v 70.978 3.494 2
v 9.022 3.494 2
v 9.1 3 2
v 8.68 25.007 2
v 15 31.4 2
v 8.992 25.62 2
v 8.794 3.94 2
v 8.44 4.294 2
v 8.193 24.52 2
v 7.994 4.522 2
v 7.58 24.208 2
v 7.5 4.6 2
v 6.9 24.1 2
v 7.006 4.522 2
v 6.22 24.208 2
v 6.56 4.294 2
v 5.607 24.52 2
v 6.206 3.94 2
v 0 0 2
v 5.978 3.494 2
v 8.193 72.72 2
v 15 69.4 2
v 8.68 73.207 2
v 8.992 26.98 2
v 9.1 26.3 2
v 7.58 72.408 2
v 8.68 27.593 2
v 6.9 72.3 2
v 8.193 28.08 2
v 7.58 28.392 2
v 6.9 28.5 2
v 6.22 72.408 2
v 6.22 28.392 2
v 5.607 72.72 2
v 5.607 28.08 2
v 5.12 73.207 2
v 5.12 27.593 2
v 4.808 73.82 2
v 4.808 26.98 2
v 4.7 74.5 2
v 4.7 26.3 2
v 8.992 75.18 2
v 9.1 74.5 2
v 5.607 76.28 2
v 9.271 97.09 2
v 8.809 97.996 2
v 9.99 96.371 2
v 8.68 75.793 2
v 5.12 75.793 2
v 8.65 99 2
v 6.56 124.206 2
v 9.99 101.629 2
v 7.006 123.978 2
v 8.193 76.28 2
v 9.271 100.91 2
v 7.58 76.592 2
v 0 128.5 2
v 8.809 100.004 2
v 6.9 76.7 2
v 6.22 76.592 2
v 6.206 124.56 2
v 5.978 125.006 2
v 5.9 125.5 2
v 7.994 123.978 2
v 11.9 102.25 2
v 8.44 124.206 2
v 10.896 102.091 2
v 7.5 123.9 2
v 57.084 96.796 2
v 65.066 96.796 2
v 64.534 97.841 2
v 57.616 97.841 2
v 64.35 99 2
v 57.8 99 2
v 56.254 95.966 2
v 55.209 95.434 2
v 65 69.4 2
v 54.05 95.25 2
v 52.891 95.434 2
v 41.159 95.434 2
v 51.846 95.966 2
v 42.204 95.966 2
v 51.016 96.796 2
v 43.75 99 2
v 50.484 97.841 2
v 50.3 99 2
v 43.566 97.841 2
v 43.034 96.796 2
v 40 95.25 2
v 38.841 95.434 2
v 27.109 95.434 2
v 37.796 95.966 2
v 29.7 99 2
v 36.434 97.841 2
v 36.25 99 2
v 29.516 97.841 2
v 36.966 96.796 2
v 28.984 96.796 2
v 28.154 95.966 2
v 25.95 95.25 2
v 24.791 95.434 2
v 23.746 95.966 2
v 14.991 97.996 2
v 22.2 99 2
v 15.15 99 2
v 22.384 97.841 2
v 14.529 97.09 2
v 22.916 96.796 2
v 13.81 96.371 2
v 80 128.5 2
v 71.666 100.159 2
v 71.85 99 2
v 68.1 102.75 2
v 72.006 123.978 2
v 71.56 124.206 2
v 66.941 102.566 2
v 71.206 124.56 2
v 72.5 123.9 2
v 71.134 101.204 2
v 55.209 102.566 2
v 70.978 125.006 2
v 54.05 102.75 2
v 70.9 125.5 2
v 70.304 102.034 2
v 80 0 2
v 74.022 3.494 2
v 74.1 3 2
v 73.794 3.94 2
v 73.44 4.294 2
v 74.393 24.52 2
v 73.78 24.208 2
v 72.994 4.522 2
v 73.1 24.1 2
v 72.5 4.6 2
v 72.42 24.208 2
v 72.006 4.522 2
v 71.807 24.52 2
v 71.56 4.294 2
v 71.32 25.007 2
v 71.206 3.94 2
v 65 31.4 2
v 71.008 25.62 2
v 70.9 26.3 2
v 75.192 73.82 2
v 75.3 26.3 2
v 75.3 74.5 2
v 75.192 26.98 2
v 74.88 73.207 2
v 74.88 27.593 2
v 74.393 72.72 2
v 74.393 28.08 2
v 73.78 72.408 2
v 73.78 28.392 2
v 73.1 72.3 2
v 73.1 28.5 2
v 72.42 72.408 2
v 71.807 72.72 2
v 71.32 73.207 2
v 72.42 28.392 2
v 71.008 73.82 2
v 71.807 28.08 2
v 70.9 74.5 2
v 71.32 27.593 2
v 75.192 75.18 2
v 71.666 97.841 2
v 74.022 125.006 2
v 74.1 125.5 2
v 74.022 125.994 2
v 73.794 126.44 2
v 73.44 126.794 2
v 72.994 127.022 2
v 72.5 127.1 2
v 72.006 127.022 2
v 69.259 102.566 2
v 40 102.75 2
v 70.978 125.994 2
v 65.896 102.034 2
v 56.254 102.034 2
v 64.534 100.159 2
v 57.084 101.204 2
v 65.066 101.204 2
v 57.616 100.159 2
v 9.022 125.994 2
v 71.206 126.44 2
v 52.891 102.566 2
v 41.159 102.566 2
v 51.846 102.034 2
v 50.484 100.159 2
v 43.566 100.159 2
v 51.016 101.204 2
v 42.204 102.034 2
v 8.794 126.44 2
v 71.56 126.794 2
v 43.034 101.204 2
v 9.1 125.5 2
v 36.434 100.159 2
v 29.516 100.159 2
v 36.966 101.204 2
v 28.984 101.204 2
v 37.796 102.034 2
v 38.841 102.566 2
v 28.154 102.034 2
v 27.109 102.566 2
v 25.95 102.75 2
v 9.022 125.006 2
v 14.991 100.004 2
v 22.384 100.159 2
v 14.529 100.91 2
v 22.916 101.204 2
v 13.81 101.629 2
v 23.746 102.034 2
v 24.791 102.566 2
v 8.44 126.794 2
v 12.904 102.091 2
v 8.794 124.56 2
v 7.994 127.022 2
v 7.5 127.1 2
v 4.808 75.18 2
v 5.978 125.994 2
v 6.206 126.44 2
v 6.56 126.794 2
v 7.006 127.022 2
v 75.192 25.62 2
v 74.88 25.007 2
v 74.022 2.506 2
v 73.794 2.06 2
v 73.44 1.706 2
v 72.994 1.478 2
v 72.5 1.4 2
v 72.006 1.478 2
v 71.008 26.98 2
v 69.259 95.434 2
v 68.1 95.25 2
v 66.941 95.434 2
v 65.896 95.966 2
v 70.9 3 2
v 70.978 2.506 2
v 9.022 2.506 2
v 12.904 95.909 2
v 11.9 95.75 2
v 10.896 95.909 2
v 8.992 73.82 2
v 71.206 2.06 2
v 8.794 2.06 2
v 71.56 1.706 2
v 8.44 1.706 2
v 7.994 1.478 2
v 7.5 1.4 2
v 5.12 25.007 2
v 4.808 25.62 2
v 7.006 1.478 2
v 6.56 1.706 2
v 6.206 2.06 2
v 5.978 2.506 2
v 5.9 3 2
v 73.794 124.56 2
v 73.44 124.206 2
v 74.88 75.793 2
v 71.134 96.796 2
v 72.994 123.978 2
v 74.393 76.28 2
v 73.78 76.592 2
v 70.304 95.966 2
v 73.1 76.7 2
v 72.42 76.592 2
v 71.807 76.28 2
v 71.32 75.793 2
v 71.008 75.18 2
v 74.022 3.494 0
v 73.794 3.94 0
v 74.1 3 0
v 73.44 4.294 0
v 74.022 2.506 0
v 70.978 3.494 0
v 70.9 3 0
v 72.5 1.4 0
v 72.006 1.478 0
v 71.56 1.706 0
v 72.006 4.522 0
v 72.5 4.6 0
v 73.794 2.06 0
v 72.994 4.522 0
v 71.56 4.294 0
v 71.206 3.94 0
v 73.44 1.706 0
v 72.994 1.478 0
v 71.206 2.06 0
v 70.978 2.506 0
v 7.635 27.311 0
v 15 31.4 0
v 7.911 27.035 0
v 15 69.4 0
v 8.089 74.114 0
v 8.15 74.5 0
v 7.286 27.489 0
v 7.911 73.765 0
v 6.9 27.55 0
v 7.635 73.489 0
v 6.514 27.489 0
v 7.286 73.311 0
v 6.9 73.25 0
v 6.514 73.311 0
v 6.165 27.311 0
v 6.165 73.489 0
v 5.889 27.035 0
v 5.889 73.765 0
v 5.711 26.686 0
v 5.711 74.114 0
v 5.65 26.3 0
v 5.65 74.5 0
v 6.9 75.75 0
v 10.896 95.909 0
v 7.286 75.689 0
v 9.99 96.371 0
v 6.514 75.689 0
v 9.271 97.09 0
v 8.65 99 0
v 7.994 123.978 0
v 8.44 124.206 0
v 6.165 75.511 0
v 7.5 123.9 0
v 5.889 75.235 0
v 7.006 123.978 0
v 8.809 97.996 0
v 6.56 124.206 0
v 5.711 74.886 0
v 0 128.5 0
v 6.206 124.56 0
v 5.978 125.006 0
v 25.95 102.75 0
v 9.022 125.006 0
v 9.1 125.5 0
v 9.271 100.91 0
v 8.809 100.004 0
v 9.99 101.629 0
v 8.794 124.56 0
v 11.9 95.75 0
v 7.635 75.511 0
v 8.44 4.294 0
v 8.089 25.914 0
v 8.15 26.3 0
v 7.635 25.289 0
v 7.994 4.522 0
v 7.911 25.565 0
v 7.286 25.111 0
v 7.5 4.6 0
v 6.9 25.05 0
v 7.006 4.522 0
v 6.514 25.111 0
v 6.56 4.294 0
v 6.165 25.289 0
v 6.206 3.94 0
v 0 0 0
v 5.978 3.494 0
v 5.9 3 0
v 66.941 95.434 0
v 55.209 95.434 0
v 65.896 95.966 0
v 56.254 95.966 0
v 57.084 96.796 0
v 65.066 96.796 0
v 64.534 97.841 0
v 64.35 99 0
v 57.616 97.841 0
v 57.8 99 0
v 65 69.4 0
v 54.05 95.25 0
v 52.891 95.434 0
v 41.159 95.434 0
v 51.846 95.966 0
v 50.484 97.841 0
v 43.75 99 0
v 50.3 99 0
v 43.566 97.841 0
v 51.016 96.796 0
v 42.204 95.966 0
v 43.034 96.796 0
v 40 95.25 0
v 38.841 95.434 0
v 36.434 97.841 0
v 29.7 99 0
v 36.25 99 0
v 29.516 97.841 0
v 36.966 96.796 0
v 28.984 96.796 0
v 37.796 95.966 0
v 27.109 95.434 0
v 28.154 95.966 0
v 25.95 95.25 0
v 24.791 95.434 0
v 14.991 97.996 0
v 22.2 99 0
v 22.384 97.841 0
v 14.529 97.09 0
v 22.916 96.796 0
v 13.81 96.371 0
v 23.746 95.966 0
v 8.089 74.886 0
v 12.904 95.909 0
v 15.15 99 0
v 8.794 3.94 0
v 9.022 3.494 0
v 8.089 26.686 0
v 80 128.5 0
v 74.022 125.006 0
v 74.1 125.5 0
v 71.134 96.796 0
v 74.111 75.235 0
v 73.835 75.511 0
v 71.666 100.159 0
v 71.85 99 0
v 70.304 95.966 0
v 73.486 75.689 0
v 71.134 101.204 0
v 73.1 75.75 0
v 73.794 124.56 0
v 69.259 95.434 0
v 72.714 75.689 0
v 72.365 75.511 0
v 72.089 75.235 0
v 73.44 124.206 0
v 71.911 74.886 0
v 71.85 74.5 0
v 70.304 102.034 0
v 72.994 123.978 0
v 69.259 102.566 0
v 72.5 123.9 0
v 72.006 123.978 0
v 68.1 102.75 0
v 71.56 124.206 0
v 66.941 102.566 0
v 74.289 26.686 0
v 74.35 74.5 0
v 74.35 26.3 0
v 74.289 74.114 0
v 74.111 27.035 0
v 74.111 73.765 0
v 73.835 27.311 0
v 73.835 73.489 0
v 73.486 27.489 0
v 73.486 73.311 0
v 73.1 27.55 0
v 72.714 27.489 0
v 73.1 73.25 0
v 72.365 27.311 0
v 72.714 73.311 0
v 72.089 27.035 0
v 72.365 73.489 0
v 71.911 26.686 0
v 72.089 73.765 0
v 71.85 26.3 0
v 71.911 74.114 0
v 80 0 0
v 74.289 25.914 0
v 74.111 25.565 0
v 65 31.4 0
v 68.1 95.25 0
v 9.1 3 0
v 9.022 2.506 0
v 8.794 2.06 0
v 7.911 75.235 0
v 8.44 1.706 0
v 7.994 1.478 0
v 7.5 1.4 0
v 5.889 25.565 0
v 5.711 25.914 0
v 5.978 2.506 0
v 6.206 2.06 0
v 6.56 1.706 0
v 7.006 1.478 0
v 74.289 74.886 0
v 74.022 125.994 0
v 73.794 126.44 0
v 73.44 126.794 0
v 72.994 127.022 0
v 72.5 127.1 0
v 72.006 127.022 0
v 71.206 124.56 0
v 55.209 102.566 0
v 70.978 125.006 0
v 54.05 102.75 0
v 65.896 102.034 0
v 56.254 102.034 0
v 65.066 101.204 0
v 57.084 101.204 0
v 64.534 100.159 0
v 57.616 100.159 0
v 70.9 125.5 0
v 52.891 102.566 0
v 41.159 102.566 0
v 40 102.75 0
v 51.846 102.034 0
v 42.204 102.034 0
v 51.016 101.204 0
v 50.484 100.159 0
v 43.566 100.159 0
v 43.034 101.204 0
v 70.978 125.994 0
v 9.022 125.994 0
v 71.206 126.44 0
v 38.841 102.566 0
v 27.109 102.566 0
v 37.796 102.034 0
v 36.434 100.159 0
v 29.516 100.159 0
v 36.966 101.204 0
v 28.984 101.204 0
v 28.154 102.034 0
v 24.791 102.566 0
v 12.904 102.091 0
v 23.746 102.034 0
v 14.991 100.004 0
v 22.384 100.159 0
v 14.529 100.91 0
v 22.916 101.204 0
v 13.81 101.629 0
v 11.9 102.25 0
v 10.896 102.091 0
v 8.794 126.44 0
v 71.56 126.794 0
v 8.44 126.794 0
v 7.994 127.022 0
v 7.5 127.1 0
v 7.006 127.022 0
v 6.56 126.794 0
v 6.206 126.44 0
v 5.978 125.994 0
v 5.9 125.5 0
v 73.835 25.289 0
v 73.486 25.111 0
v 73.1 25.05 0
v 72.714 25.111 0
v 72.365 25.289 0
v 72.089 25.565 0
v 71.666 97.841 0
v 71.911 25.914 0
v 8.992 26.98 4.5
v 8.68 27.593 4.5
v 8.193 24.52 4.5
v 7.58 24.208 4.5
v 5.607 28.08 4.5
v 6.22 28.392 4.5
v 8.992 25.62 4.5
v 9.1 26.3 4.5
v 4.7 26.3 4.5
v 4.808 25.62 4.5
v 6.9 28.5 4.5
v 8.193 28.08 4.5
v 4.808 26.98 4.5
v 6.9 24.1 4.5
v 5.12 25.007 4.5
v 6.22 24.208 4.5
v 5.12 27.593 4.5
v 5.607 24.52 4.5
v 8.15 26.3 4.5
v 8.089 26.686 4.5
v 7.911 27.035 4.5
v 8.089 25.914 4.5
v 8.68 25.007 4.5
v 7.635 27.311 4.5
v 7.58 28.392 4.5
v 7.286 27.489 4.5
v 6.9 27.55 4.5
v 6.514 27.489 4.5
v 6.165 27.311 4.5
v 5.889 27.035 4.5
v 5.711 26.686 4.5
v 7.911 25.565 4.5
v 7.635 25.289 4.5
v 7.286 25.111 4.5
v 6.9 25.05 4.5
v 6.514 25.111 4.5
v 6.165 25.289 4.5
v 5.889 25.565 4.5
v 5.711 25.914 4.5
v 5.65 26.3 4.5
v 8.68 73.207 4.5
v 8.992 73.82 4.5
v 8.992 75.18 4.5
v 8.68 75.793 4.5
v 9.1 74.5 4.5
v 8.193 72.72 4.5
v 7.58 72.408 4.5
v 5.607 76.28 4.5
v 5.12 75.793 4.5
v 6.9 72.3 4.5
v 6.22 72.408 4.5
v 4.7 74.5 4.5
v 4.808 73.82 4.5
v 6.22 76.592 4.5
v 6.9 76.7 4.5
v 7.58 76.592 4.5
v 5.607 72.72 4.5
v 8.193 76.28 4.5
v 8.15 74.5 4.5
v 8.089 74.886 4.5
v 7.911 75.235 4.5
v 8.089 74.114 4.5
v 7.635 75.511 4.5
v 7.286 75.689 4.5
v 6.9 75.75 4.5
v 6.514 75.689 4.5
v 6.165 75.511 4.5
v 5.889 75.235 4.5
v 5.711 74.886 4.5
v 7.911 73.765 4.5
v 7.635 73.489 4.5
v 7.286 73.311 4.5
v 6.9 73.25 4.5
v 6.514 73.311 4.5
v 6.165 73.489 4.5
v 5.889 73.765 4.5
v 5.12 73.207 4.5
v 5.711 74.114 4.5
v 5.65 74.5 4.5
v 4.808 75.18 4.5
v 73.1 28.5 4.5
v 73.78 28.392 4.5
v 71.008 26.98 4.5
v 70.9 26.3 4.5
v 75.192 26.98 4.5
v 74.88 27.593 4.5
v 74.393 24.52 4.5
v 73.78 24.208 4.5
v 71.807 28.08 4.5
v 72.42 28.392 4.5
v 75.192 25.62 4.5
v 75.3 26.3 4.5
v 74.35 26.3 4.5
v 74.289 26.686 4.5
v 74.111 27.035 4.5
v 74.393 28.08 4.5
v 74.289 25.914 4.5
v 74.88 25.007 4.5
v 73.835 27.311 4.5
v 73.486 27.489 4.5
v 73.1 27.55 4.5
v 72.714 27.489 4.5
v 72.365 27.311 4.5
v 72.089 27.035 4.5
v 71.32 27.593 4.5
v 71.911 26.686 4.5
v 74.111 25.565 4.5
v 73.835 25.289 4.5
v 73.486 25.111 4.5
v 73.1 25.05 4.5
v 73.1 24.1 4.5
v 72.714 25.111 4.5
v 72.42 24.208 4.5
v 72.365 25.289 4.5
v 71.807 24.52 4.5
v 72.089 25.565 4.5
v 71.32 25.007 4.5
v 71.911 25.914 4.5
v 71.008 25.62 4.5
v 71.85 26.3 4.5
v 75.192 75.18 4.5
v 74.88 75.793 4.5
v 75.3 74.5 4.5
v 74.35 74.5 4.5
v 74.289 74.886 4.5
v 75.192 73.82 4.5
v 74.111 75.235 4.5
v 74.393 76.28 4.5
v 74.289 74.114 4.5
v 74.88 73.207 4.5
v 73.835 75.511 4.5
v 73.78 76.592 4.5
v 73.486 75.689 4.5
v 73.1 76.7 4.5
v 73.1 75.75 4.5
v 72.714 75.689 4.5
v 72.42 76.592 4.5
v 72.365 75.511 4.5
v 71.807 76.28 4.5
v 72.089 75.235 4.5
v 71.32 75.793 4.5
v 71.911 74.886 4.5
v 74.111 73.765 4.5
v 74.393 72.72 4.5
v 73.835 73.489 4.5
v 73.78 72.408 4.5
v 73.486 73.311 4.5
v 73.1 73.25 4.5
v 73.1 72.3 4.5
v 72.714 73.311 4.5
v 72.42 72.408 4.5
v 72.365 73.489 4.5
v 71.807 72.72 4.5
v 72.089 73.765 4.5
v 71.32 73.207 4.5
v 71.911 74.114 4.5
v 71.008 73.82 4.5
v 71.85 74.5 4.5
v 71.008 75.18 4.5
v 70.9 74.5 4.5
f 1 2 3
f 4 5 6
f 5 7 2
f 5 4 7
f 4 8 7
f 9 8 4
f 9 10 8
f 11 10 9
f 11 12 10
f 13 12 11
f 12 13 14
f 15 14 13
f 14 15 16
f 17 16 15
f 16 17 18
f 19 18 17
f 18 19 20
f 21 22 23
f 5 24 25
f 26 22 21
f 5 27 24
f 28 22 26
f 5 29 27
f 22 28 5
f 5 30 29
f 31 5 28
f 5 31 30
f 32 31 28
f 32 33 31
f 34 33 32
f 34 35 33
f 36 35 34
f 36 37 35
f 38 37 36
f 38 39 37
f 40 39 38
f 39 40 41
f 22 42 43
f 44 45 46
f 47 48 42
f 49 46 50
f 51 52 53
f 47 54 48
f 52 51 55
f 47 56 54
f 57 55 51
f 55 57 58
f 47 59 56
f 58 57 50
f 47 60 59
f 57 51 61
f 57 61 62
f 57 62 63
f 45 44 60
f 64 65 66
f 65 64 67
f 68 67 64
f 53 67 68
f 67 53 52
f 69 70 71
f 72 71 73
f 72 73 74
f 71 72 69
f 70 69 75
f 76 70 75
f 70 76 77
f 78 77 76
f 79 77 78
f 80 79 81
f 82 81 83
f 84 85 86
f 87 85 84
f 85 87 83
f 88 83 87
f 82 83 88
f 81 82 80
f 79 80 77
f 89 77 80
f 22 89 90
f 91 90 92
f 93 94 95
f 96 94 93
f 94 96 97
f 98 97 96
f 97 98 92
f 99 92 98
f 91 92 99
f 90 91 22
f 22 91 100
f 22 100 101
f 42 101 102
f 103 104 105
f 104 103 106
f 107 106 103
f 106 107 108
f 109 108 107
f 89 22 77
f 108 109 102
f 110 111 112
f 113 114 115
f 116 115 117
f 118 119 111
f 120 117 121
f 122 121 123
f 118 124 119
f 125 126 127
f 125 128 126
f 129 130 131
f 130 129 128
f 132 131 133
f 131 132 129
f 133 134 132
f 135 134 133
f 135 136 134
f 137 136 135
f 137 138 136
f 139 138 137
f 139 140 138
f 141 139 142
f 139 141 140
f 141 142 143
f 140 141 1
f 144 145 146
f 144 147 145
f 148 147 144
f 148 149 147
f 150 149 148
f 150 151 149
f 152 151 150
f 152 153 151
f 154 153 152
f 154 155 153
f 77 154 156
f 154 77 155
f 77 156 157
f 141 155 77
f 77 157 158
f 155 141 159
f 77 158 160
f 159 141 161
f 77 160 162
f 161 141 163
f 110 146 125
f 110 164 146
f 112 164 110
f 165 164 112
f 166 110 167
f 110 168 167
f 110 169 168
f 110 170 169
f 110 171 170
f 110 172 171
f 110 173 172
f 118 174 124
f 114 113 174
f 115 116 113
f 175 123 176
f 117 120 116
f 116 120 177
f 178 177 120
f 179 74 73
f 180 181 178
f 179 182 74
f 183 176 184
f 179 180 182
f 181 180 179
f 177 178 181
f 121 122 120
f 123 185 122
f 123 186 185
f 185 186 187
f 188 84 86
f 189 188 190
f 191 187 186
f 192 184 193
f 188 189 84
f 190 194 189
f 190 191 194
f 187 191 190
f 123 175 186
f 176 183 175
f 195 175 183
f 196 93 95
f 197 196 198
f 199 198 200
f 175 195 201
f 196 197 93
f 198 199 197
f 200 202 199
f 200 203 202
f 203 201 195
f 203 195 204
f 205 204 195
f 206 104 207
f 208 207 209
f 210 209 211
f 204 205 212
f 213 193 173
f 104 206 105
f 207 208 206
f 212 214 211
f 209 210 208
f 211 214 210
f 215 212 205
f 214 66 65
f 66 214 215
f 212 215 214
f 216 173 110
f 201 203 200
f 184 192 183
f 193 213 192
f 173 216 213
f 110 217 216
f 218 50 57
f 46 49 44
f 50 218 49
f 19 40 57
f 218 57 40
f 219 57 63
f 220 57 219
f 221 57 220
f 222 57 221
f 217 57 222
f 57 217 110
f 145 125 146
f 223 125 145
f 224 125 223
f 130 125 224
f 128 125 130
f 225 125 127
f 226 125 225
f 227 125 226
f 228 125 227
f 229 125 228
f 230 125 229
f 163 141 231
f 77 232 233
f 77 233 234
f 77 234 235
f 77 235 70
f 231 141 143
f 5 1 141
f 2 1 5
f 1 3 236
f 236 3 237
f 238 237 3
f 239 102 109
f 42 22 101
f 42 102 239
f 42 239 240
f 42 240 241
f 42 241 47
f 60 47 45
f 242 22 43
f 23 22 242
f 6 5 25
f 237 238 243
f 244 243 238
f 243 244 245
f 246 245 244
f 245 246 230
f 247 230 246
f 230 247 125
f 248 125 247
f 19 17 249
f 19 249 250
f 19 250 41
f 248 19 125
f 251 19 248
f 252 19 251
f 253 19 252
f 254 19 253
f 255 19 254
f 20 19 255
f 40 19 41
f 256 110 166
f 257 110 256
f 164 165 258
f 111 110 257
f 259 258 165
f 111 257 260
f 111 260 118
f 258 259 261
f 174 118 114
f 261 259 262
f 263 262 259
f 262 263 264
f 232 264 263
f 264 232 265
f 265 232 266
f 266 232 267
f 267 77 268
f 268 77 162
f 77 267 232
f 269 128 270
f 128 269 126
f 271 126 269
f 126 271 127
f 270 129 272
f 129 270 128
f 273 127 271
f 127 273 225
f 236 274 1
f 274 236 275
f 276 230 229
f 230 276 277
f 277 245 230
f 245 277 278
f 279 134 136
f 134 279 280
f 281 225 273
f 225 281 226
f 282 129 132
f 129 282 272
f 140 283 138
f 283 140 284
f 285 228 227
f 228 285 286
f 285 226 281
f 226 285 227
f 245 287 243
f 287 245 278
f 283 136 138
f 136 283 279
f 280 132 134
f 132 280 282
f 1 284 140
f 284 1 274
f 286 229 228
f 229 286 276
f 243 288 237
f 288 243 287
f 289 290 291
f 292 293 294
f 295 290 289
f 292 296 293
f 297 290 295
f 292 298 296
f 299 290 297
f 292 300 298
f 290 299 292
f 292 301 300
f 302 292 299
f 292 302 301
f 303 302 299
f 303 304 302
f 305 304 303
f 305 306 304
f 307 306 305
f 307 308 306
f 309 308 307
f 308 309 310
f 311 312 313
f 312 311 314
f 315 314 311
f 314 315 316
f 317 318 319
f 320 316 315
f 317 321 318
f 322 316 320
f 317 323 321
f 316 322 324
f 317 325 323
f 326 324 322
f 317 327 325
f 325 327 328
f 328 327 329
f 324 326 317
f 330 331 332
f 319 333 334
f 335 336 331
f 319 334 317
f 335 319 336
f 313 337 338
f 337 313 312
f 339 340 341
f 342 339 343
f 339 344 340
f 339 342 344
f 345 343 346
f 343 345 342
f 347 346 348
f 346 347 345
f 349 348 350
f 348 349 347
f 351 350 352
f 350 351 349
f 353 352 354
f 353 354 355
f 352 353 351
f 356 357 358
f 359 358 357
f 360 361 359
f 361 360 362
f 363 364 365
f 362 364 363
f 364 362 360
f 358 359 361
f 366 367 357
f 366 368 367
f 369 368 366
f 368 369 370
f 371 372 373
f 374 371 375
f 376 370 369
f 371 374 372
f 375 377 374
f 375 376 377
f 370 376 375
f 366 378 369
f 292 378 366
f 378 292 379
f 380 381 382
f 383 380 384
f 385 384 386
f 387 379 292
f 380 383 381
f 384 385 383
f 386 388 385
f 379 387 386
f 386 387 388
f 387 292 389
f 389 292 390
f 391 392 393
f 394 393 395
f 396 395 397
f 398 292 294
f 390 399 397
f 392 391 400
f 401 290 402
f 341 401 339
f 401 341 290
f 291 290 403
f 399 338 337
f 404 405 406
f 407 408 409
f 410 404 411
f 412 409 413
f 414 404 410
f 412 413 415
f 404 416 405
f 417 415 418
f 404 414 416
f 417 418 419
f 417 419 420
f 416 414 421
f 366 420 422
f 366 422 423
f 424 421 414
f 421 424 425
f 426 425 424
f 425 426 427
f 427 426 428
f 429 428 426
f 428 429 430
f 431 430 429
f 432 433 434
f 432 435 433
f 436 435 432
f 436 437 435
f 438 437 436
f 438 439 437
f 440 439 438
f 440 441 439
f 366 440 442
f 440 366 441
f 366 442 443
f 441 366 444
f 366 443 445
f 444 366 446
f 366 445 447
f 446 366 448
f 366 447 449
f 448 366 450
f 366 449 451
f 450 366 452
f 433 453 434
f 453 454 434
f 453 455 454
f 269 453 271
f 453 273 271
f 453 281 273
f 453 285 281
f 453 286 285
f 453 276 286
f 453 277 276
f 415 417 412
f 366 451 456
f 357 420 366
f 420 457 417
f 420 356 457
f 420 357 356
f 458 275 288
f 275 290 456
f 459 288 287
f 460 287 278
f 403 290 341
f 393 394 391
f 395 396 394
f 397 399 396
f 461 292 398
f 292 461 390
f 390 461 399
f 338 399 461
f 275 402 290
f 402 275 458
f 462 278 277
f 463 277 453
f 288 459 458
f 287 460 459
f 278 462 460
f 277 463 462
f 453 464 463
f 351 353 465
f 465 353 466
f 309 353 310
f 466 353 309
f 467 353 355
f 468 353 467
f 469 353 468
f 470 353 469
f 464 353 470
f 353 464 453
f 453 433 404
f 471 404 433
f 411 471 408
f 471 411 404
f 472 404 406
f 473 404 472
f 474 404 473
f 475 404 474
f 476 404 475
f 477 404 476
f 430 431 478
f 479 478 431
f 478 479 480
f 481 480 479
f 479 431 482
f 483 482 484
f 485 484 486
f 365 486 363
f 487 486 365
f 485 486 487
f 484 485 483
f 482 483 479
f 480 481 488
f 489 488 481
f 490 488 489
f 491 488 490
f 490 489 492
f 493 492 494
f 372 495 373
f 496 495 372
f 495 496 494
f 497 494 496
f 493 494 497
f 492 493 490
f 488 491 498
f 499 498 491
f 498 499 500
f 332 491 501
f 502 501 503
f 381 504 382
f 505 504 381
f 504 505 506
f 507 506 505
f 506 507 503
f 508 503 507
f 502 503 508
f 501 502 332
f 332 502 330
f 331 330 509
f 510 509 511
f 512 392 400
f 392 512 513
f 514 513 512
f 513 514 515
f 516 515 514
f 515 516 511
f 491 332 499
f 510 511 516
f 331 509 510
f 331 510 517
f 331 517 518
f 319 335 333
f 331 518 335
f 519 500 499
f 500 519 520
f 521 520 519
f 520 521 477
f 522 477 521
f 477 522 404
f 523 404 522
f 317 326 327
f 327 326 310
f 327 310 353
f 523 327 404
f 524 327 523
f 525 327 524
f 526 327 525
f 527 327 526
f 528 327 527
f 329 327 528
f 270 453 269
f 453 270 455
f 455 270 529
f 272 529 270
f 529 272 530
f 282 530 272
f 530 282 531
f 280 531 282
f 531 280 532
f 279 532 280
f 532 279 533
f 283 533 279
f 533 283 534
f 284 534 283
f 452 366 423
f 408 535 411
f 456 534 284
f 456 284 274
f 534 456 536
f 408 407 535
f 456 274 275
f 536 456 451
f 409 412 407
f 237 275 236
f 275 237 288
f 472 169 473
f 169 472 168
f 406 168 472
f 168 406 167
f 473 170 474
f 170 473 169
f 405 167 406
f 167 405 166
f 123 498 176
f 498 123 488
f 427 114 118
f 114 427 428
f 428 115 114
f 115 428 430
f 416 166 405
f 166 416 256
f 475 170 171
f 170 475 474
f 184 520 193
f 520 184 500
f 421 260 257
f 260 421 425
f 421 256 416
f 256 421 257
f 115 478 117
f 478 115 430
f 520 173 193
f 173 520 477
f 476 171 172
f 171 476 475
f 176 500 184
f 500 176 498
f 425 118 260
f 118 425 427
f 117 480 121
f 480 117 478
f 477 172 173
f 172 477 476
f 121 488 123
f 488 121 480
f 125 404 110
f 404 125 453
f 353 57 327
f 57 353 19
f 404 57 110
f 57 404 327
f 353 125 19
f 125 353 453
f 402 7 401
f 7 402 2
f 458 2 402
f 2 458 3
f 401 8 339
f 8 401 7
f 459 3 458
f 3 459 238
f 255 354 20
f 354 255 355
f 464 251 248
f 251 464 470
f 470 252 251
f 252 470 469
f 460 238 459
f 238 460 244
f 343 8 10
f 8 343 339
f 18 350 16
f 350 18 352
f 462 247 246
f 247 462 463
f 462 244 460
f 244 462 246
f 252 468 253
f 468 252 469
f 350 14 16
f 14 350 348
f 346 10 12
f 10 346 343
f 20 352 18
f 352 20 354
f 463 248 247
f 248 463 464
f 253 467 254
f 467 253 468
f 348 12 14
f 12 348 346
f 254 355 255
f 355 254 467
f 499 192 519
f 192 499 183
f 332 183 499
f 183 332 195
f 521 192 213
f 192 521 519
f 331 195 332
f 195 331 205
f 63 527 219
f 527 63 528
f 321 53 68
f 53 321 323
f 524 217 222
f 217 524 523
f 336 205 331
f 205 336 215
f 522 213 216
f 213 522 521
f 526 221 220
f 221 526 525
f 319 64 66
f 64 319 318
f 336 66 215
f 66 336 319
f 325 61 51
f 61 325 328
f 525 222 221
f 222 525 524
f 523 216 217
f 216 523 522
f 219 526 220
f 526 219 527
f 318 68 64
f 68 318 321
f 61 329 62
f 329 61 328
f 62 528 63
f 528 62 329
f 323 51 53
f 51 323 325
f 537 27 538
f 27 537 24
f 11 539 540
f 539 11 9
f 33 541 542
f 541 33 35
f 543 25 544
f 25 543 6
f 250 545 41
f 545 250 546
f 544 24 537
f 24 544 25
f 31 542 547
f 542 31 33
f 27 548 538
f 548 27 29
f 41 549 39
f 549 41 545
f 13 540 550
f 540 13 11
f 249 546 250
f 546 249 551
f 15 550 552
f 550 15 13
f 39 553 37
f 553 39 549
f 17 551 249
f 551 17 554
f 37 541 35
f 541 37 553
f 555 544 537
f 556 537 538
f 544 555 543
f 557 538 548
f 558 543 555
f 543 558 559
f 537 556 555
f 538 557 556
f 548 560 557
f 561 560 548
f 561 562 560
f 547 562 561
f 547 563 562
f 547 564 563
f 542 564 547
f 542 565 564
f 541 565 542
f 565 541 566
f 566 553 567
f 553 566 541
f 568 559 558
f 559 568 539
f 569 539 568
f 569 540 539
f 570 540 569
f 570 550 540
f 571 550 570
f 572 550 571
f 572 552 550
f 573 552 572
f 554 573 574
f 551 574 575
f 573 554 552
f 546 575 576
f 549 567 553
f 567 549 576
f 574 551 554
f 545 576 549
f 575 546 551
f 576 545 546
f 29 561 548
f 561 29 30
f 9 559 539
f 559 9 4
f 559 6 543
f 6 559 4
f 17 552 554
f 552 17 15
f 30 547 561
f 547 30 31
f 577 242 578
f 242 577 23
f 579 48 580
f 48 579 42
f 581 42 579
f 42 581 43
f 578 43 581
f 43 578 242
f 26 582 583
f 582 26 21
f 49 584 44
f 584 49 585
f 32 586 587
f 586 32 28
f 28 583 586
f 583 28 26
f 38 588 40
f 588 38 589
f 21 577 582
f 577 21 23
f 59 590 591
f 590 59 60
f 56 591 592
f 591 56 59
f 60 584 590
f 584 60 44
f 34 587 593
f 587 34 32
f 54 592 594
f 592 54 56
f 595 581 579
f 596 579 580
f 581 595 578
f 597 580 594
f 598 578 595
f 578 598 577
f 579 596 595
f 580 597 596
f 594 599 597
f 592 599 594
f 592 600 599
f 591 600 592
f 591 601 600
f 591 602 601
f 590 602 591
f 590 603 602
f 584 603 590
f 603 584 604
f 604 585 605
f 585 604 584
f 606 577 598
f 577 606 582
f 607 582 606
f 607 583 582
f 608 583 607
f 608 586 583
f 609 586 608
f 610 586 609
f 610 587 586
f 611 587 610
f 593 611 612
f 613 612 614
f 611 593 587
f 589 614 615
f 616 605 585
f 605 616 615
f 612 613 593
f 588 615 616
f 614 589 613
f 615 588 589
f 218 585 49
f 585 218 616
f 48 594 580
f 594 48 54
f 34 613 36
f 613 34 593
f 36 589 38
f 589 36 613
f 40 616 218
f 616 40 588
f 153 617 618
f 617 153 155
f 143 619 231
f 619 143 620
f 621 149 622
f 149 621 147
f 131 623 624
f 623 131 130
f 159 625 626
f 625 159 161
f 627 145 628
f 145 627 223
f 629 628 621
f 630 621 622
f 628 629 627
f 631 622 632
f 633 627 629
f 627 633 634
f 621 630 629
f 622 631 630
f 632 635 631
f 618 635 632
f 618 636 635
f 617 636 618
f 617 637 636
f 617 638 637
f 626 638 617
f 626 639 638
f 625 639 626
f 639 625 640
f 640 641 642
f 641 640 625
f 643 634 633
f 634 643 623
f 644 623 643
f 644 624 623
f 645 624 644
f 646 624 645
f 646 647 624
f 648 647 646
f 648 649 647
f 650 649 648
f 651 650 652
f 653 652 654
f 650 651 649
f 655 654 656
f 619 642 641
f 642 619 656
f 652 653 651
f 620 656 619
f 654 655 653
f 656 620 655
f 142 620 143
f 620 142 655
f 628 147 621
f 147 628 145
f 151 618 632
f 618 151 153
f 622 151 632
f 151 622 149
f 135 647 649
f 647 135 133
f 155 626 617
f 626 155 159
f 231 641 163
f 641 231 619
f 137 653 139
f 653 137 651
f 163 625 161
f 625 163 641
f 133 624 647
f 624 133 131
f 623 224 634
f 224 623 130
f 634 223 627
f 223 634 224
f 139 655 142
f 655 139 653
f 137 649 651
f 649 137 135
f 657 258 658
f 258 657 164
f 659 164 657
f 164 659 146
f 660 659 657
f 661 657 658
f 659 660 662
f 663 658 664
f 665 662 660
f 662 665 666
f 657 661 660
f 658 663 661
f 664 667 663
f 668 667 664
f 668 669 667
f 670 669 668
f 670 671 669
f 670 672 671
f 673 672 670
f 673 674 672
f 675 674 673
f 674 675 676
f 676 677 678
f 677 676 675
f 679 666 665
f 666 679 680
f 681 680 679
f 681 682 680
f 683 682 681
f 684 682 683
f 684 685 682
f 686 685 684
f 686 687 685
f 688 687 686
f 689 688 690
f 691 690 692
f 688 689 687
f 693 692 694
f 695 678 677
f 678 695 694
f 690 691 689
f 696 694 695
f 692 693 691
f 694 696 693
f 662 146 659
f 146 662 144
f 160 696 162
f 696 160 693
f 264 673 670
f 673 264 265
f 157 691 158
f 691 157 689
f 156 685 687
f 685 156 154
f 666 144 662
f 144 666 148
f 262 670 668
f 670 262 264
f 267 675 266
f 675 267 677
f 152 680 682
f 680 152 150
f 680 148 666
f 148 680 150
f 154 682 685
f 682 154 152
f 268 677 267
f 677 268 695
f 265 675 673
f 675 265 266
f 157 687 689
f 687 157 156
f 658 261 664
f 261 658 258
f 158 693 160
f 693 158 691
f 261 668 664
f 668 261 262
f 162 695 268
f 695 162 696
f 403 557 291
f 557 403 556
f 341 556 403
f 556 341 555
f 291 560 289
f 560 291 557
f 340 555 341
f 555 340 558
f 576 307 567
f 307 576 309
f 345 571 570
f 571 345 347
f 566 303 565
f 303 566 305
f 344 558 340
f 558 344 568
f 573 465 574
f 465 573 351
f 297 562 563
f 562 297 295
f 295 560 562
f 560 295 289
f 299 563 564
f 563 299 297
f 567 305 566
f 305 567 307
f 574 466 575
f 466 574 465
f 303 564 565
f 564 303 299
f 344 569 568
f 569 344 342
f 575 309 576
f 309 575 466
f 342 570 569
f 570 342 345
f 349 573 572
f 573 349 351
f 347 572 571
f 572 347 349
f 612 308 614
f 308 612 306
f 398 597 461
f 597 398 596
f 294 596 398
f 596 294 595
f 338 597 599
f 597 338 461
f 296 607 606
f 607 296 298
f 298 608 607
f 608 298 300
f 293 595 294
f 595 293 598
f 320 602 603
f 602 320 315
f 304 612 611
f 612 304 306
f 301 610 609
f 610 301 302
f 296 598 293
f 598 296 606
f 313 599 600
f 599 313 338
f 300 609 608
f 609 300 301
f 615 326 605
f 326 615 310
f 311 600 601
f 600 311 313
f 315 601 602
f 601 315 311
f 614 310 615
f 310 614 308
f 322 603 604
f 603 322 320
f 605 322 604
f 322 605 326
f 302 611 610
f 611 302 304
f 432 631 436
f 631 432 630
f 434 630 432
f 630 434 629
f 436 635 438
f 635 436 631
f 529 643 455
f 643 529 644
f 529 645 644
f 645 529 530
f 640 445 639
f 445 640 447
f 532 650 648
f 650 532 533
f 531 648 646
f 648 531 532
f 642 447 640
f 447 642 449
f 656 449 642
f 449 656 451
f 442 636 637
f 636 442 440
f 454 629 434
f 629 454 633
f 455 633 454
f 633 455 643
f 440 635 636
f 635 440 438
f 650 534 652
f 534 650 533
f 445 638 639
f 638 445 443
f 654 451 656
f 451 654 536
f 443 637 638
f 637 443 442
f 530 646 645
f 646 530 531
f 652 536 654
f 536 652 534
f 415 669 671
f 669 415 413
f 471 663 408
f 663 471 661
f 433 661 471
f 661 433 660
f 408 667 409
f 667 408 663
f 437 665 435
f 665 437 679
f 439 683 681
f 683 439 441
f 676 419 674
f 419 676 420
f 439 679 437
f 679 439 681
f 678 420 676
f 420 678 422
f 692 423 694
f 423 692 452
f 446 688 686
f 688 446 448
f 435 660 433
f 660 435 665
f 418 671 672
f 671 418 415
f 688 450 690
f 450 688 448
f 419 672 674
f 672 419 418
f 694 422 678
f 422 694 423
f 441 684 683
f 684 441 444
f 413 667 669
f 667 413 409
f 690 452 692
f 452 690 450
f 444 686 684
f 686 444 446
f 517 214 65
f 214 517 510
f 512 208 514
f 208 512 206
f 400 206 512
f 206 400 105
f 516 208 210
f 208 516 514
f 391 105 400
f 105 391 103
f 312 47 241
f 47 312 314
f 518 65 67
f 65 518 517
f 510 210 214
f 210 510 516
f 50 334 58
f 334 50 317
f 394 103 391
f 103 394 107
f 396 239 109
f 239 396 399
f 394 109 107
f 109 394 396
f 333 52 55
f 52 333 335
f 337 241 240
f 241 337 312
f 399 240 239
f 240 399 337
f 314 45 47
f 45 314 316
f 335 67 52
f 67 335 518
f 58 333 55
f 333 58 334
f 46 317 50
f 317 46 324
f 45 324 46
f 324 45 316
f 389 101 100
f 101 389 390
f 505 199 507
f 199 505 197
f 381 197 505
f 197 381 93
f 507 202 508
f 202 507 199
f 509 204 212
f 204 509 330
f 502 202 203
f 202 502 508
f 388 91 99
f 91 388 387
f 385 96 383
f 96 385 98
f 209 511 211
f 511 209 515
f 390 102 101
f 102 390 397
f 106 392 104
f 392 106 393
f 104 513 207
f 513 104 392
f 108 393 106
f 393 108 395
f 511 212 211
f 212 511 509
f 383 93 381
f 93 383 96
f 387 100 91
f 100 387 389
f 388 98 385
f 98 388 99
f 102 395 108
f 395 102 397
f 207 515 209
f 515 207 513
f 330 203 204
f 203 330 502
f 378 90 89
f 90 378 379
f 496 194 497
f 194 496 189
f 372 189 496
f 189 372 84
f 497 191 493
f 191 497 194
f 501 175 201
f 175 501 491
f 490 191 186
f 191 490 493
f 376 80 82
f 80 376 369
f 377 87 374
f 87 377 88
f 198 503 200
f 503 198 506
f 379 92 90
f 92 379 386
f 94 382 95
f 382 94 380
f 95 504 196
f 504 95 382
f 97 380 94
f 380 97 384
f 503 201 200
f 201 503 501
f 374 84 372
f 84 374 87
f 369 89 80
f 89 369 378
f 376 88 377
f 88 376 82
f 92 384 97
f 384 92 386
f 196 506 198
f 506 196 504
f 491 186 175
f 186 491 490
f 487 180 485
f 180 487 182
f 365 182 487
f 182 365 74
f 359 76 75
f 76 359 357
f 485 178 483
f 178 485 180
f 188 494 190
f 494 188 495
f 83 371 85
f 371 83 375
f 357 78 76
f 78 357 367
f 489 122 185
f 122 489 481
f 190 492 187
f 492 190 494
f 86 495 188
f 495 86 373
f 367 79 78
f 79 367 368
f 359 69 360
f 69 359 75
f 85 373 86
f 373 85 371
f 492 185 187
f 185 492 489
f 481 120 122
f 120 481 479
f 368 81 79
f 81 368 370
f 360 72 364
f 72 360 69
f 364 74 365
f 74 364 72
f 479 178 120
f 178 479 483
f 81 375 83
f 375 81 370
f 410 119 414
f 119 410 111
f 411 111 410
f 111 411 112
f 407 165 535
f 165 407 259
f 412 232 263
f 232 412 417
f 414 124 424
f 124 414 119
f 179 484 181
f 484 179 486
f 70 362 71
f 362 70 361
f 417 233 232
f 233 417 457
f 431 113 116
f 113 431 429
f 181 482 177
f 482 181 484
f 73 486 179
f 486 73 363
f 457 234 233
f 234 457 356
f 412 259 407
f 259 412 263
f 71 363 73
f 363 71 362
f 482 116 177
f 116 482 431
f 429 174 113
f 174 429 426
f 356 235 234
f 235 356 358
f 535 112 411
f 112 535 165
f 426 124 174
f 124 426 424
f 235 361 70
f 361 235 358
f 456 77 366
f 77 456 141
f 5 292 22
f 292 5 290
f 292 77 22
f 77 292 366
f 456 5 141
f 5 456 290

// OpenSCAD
// file: ../../../share/openscad/eurorack-panel.scad
// this is based on A100 spec from doepfer https://doepfer.de/a100_man/a100m_e.htm

eurorack_panel_height = function() 128.5;
eurorack_panel_width = function(width_in_hp) width_in_hp * 5;

module eurorack_panel(width_in_hp, thickness=2) {
    difference() {
        cube([eurorack_panel_width(width_in_hp), eurorack_panel_height(), thickness]);

        translate([7.5, 3, 0])
            cylinder(thickness, d=3.2, $fn=20);
        translate([7.5, eurorack_panel_height() - 3, 0])
            cylinder(thickness, d=3.2, $fn=20);

        if (width_in_hp >= 8) {
            translate([eurorack_panel_width(width_in_hp) - 7.5, 3, 0])
                cylinder(thickness, d=3.2, $fn=20);
            translate([eurorack_panel_width(width_in_hp) - 7.5, eurorack_panel_height() - 3, 0])
                cylinder(thickness, d=3.2, $fn=20);
        }
    }
}
// main file
/*
 * SPDX-FileCopyrightText: 2021-2022 Rafael G. Martins <rafael@rafaelmartins.eng.br>
 * SPDX-License-Identifier: CERN-OHL-S-2.0
 */

include <../../../share/openscad/eurorack-panel.scad>

width_in_hp = 16;
thickness = 2;

pcb_width = 71.3;
pcb_height = 53.3;
pcb_padding_y = 14.5;

pcb0_x = (eurorack_panel_width(width_in_hp) - pcb_width) / 2;
pcb0_y = (eurorack_panel_height() - 110) / 2 + pcb_padding_y;

screw_spacing_x = 66.2;
screw_spacing_y = 48.2;
screw_distance_x = (pcb_width - screw_spacing_x) / 2;
screw_distance_y = (pcb_height - screw_spacing_y) / 2;
screw_d = 2.5;
screw_base_d = 4.4;

screen_width = 50;
screen_height = 38;
screen_length = 2.5;
screen_distance_x = (pcb_width - screen_width) / 2;
screen_distance_y = (pcb_height - screen_height) / 2;

jack_d = 6.5;
jack_distance_x = screw_distance_x + 5;
jack_distance_y = screw_distance_y + screw_spacing_y + pcb_padding_y + 10;
button_d = 7.5;
button_spacing = (screw_spacing_x - 10) / 4;

difference() {
    union() {
        eurorack_panel(width_in_hp, thickness);
        for (i = [0 : 1])
            for (j = [0 : 1])
                translate([pcb0_x + screw_distance_x + i * screw_spacing_x,
                           pcb0_y + screw_distance_y + j * screw_spacing_y, thickness])
                    cylinder(screen_length, d=screw_base_d, $fn=20);
    }

    translate([pcb0_x, pcb0_y, 0]) {
        for (i = [0 : 1])
            for (j = [0 : 1])
                translate([screw_distance_x + i * screw_spacing_x,
                           screw_distance_y + j * screw_spacing_y, 0])
                    cylinder(thickness + screen_length, d=screw_d, $fn=20);

        translate([screen_distance_x, screen_distance_y, 0])
            cube([screen_width, screen_height, thickness]);

        for (i = [0 : 4]) {
            translate([jack_distance_x + i * button_spacing, jack_distance_y, 0]) {
                if (i == 0)
                    cylinder(thickness, d=jack_d, $fn=20);
                else
                    cylinder(thickness, d=button_d, $fn=20);
            }
        }
    }
}
